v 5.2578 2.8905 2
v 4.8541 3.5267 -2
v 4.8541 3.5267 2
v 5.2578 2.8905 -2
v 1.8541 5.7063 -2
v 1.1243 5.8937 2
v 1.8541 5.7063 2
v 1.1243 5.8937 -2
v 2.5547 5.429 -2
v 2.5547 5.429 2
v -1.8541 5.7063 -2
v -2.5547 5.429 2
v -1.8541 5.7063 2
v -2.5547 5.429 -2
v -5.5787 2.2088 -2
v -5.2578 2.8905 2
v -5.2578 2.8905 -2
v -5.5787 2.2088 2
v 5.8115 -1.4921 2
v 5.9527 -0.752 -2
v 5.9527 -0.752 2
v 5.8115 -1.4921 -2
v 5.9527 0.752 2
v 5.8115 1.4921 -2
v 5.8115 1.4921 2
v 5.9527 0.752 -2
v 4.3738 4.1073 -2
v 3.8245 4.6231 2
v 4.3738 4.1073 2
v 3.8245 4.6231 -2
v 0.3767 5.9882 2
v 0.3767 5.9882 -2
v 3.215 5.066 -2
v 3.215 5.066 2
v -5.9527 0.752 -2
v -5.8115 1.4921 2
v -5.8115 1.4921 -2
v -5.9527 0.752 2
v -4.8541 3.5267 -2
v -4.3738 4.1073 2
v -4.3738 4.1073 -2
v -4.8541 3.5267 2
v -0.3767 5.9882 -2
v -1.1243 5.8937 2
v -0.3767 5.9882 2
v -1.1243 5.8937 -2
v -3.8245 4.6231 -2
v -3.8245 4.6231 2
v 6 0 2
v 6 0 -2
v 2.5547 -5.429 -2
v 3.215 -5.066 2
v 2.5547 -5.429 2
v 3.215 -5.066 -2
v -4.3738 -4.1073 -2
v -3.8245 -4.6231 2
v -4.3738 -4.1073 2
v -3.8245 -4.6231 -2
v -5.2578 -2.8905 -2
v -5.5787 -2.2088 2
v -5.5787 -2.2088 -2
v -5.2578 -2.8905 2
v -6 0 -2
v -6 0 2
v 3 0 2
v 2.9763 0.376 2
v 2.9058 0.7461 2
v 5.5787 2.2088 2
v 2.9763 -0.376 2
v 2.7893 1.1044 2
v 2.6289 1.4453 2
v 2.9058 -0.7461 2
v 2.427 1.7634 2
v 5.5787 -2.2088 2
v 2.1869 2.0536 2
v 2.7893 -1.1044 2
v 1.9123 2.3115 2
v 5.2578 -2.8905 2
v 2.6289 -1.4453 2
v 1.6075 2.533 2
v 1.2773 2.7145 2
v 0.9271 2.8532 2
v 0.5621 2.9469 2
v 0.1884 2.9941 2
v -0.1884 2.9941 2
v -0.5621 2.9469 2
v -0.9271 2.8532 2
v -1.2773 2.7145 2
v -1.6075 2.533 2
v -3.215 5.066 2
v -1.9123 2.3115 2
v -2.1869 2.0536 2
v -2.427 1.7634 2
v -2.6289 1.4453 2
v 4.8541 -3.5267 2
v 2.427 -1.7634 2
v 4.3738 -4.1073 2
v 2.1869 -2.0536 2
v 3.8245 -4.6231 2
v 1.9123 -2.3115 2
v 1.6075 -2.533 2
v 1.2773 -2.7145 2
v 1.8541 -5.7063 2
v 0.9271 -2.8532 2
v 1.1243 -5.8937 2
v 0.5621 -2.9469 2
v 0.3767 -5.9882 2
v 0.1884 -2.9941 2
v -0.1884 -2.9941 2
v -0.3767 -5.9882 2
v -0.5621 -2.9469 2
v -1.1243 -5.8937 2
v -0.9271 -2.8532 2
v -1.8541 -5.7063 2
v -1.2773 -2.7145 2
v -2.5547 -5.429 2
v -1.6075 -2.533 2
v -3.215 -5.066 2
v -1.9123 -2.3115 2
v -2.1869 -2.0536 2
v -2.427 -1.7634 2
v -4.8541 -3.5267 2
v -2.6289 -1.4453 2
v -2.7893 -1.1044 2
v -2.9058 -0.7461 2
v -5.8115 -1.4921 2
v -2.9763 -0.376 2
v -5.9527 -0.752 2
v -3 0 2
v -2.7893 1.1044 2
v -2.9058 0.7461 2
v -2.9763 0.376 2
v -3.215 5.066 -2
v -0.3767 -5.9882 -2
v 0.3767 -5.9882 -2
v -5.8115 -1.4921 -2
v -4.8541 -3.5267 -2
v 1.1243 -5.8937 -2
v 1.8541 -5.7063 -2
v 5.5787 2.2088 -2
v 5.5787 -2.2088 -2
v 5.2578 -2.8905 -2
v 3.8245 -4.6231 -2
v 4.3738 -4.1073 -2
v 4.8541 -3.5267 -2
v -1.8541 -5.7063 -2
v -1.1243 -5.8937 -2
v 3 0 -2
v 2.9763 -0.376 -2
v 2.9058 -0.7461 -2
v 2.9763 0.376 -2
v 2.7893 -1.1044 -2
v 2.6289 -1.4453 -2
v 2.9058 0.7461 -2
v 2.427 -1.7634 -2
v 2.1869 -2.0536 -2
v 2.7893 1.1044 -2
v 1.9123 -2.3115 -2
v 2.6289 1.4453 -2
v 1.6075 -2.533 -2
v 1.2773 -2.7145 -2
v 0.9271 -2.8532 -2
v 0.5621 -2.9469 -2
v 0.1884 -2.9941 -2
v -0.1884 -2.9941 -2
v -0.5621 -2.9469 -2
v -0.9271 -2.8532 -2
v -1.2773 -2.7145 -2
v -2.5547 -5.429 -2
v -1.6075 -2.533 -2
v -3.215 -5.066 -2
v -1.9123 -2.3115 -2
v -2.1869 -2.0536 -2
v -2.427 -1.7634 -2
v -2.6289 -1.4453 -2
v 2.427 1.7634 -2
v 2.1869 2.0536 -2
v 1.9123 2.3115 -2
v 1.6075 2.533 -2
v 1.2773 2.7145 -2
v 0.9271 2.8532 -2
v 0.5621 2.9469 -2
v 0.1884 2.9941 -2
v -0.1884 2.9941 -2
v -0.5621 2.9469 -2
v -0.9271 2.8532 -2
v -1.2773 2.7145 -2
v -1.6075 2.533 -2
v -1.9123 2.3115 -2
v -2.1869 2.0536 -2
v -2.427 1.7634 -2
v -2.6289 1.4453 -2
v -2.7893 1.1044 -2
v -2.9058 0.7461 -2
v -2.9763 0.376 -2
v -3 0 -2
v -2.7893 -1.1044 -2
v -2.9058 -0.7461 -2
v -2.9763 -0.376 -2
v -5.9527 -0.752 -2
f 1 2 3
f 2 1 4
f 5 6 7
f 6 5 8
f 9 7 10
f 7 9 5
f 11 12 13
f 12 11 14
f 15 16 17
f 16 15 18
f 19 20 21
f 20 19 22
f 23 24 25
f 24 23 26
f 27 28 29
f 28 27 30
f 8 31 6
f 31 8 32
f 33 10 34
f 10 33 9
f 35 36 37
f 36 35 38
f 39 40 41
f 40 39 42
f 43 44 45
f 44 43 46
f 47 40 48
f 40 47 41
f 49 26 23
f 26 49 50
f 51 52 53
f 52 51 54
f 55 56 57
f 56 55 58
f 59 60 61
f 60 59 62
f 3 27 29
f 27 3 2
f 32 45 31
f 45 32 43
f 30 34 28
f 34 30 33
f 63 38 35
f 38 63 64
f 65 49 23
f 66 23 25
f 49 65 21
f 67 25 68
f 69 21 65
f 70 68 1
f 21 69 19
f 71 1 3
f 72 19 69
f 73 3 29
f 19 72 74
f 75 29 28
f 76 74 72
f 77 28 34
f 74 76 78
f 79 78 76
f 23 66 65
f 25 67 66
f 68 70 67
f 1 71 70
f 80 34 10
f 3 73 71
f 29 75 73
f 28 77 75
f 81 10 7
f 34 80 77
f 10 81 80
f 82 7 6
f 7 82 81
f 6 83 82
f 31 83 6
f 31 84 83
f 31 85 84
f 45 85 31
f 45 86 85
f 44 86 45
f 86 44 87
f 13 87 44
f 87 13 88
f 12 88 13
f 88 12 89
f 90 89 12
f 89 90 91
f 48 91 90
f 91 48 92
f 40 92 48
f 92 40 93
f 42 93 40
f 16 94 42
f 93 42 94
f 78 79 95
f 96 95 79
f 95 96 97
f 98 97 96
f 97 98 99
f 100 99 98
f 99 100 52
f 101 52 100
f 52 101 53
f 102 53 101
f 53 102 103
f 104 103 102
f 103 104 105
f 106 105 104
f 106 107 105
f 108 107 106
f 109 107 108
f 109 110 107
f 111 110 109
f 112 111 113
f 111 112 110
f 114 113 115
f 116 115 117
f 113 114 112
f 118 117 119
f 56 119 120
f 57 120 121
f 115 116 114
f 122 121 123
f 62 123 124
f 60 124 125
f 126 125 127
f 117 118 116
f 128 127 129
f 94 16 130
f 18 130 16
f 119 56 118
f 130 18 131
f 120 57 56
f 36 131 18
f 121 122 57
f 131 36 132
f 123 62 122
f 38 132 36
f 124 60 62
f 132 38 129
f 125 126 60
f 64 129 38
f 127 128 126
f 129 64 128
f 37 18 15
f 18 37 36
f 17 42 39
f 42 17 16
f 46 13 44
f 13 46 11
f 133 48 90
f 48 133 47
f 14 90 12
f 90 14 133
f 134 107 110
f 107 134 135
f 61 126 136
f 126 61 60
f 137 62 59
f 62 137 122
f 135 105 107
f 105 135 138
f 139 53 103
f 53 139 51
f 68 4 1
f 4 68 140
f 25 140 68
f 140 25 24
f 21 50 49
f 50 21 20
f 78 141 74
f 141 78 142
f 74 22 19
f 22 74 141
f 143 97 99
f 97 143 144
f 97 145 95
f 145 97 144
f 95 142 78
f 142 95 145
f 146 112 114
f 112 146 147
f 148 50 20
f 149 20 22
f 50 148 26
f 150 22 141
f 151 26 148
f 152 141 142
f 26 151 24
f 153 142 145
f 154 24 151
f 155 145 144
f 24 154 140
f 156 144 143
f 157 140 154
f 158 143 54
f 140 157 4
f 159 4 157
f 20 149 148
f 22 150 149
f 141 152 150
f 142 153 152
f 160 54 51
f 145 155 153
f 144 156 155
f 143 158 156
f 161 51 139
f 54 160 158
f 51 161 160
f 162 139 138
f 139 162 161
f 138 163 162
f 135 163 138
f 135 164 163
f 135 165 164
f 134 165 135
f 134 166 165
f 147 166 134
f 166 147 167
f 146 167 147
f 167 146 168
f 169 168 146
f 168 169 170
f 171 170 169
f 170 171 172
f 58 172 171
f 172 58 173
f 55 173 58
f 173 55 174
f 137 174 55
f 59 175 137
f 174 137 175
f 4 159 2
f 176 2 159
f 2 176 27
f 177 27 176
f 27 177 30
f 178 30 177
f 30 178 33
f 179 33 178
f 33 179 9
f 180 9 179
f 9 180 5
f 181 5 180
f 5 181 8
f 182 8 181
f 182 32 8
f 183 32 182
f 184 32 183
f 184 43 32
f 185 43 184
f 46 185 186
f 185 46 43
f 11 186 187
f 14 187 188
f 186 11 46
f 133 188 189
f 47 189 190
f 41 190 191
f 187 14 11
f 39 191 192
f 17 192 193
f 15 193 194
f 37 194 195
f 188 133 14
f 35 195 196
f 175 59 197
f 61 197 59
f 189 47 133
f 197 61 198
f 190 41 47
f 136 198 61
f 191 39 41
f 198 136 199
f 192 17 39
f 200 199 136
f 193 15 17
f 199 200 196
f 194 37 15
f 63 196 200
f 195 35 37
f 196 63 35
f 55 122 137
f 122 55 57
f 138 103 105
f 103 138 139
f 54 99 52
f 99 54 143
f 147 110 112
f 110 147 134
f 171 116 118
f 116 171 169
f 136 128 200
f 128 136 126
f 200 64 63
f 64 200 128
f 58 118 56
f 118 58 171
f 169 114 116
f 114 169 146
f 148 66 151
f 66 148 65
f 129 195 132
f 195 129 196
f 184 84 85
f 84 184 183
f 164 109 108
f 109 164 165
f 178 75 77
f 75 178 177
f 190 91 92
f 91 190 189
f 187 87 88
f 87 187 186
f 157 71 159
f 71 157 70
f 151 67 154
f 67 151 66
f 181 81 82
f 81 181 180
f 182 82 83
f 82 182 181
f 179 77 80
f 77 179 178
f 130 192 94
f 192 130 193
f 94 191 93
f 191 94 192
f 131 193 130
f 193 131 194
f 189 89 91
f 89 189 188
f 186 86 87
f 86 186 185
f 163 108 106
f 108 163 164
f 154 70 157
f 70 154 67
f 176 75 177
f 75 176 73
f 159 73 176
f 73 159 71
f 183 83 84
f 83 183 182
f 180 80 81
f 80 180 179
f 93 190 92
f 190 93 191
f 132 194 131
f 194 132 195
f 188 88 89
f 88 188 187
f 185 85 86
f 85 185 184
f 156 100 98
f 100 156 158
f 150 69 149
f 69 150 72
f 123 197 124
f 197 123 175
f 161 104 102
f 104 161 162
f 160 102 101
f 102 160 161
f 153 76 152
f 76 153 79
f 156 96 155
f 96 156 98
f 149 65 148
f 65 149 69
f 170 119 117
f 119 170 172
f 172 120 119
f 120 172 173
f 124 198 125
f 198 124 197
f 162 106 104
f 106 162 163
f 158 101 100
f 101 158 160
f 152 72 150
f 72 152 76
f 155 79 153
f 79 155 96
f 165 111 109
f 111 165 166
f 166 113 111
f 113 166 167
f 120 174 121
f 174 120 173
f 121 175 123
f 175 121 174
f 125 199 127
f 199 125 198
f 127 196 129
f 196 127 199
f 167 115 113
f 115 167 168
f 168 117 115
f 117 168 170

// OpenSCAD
$fn = 50;


difference() {
	union() {
		translate(v = [0, 0, -2.0000000000]) {
			cylinder(h = 4, r = 6.0000000000);
		}
	}
	union() {
		translate(v = [0, 0, -100.0000000000]) {
			cylinder(h = 200, r = 3);
		}
	}
}
